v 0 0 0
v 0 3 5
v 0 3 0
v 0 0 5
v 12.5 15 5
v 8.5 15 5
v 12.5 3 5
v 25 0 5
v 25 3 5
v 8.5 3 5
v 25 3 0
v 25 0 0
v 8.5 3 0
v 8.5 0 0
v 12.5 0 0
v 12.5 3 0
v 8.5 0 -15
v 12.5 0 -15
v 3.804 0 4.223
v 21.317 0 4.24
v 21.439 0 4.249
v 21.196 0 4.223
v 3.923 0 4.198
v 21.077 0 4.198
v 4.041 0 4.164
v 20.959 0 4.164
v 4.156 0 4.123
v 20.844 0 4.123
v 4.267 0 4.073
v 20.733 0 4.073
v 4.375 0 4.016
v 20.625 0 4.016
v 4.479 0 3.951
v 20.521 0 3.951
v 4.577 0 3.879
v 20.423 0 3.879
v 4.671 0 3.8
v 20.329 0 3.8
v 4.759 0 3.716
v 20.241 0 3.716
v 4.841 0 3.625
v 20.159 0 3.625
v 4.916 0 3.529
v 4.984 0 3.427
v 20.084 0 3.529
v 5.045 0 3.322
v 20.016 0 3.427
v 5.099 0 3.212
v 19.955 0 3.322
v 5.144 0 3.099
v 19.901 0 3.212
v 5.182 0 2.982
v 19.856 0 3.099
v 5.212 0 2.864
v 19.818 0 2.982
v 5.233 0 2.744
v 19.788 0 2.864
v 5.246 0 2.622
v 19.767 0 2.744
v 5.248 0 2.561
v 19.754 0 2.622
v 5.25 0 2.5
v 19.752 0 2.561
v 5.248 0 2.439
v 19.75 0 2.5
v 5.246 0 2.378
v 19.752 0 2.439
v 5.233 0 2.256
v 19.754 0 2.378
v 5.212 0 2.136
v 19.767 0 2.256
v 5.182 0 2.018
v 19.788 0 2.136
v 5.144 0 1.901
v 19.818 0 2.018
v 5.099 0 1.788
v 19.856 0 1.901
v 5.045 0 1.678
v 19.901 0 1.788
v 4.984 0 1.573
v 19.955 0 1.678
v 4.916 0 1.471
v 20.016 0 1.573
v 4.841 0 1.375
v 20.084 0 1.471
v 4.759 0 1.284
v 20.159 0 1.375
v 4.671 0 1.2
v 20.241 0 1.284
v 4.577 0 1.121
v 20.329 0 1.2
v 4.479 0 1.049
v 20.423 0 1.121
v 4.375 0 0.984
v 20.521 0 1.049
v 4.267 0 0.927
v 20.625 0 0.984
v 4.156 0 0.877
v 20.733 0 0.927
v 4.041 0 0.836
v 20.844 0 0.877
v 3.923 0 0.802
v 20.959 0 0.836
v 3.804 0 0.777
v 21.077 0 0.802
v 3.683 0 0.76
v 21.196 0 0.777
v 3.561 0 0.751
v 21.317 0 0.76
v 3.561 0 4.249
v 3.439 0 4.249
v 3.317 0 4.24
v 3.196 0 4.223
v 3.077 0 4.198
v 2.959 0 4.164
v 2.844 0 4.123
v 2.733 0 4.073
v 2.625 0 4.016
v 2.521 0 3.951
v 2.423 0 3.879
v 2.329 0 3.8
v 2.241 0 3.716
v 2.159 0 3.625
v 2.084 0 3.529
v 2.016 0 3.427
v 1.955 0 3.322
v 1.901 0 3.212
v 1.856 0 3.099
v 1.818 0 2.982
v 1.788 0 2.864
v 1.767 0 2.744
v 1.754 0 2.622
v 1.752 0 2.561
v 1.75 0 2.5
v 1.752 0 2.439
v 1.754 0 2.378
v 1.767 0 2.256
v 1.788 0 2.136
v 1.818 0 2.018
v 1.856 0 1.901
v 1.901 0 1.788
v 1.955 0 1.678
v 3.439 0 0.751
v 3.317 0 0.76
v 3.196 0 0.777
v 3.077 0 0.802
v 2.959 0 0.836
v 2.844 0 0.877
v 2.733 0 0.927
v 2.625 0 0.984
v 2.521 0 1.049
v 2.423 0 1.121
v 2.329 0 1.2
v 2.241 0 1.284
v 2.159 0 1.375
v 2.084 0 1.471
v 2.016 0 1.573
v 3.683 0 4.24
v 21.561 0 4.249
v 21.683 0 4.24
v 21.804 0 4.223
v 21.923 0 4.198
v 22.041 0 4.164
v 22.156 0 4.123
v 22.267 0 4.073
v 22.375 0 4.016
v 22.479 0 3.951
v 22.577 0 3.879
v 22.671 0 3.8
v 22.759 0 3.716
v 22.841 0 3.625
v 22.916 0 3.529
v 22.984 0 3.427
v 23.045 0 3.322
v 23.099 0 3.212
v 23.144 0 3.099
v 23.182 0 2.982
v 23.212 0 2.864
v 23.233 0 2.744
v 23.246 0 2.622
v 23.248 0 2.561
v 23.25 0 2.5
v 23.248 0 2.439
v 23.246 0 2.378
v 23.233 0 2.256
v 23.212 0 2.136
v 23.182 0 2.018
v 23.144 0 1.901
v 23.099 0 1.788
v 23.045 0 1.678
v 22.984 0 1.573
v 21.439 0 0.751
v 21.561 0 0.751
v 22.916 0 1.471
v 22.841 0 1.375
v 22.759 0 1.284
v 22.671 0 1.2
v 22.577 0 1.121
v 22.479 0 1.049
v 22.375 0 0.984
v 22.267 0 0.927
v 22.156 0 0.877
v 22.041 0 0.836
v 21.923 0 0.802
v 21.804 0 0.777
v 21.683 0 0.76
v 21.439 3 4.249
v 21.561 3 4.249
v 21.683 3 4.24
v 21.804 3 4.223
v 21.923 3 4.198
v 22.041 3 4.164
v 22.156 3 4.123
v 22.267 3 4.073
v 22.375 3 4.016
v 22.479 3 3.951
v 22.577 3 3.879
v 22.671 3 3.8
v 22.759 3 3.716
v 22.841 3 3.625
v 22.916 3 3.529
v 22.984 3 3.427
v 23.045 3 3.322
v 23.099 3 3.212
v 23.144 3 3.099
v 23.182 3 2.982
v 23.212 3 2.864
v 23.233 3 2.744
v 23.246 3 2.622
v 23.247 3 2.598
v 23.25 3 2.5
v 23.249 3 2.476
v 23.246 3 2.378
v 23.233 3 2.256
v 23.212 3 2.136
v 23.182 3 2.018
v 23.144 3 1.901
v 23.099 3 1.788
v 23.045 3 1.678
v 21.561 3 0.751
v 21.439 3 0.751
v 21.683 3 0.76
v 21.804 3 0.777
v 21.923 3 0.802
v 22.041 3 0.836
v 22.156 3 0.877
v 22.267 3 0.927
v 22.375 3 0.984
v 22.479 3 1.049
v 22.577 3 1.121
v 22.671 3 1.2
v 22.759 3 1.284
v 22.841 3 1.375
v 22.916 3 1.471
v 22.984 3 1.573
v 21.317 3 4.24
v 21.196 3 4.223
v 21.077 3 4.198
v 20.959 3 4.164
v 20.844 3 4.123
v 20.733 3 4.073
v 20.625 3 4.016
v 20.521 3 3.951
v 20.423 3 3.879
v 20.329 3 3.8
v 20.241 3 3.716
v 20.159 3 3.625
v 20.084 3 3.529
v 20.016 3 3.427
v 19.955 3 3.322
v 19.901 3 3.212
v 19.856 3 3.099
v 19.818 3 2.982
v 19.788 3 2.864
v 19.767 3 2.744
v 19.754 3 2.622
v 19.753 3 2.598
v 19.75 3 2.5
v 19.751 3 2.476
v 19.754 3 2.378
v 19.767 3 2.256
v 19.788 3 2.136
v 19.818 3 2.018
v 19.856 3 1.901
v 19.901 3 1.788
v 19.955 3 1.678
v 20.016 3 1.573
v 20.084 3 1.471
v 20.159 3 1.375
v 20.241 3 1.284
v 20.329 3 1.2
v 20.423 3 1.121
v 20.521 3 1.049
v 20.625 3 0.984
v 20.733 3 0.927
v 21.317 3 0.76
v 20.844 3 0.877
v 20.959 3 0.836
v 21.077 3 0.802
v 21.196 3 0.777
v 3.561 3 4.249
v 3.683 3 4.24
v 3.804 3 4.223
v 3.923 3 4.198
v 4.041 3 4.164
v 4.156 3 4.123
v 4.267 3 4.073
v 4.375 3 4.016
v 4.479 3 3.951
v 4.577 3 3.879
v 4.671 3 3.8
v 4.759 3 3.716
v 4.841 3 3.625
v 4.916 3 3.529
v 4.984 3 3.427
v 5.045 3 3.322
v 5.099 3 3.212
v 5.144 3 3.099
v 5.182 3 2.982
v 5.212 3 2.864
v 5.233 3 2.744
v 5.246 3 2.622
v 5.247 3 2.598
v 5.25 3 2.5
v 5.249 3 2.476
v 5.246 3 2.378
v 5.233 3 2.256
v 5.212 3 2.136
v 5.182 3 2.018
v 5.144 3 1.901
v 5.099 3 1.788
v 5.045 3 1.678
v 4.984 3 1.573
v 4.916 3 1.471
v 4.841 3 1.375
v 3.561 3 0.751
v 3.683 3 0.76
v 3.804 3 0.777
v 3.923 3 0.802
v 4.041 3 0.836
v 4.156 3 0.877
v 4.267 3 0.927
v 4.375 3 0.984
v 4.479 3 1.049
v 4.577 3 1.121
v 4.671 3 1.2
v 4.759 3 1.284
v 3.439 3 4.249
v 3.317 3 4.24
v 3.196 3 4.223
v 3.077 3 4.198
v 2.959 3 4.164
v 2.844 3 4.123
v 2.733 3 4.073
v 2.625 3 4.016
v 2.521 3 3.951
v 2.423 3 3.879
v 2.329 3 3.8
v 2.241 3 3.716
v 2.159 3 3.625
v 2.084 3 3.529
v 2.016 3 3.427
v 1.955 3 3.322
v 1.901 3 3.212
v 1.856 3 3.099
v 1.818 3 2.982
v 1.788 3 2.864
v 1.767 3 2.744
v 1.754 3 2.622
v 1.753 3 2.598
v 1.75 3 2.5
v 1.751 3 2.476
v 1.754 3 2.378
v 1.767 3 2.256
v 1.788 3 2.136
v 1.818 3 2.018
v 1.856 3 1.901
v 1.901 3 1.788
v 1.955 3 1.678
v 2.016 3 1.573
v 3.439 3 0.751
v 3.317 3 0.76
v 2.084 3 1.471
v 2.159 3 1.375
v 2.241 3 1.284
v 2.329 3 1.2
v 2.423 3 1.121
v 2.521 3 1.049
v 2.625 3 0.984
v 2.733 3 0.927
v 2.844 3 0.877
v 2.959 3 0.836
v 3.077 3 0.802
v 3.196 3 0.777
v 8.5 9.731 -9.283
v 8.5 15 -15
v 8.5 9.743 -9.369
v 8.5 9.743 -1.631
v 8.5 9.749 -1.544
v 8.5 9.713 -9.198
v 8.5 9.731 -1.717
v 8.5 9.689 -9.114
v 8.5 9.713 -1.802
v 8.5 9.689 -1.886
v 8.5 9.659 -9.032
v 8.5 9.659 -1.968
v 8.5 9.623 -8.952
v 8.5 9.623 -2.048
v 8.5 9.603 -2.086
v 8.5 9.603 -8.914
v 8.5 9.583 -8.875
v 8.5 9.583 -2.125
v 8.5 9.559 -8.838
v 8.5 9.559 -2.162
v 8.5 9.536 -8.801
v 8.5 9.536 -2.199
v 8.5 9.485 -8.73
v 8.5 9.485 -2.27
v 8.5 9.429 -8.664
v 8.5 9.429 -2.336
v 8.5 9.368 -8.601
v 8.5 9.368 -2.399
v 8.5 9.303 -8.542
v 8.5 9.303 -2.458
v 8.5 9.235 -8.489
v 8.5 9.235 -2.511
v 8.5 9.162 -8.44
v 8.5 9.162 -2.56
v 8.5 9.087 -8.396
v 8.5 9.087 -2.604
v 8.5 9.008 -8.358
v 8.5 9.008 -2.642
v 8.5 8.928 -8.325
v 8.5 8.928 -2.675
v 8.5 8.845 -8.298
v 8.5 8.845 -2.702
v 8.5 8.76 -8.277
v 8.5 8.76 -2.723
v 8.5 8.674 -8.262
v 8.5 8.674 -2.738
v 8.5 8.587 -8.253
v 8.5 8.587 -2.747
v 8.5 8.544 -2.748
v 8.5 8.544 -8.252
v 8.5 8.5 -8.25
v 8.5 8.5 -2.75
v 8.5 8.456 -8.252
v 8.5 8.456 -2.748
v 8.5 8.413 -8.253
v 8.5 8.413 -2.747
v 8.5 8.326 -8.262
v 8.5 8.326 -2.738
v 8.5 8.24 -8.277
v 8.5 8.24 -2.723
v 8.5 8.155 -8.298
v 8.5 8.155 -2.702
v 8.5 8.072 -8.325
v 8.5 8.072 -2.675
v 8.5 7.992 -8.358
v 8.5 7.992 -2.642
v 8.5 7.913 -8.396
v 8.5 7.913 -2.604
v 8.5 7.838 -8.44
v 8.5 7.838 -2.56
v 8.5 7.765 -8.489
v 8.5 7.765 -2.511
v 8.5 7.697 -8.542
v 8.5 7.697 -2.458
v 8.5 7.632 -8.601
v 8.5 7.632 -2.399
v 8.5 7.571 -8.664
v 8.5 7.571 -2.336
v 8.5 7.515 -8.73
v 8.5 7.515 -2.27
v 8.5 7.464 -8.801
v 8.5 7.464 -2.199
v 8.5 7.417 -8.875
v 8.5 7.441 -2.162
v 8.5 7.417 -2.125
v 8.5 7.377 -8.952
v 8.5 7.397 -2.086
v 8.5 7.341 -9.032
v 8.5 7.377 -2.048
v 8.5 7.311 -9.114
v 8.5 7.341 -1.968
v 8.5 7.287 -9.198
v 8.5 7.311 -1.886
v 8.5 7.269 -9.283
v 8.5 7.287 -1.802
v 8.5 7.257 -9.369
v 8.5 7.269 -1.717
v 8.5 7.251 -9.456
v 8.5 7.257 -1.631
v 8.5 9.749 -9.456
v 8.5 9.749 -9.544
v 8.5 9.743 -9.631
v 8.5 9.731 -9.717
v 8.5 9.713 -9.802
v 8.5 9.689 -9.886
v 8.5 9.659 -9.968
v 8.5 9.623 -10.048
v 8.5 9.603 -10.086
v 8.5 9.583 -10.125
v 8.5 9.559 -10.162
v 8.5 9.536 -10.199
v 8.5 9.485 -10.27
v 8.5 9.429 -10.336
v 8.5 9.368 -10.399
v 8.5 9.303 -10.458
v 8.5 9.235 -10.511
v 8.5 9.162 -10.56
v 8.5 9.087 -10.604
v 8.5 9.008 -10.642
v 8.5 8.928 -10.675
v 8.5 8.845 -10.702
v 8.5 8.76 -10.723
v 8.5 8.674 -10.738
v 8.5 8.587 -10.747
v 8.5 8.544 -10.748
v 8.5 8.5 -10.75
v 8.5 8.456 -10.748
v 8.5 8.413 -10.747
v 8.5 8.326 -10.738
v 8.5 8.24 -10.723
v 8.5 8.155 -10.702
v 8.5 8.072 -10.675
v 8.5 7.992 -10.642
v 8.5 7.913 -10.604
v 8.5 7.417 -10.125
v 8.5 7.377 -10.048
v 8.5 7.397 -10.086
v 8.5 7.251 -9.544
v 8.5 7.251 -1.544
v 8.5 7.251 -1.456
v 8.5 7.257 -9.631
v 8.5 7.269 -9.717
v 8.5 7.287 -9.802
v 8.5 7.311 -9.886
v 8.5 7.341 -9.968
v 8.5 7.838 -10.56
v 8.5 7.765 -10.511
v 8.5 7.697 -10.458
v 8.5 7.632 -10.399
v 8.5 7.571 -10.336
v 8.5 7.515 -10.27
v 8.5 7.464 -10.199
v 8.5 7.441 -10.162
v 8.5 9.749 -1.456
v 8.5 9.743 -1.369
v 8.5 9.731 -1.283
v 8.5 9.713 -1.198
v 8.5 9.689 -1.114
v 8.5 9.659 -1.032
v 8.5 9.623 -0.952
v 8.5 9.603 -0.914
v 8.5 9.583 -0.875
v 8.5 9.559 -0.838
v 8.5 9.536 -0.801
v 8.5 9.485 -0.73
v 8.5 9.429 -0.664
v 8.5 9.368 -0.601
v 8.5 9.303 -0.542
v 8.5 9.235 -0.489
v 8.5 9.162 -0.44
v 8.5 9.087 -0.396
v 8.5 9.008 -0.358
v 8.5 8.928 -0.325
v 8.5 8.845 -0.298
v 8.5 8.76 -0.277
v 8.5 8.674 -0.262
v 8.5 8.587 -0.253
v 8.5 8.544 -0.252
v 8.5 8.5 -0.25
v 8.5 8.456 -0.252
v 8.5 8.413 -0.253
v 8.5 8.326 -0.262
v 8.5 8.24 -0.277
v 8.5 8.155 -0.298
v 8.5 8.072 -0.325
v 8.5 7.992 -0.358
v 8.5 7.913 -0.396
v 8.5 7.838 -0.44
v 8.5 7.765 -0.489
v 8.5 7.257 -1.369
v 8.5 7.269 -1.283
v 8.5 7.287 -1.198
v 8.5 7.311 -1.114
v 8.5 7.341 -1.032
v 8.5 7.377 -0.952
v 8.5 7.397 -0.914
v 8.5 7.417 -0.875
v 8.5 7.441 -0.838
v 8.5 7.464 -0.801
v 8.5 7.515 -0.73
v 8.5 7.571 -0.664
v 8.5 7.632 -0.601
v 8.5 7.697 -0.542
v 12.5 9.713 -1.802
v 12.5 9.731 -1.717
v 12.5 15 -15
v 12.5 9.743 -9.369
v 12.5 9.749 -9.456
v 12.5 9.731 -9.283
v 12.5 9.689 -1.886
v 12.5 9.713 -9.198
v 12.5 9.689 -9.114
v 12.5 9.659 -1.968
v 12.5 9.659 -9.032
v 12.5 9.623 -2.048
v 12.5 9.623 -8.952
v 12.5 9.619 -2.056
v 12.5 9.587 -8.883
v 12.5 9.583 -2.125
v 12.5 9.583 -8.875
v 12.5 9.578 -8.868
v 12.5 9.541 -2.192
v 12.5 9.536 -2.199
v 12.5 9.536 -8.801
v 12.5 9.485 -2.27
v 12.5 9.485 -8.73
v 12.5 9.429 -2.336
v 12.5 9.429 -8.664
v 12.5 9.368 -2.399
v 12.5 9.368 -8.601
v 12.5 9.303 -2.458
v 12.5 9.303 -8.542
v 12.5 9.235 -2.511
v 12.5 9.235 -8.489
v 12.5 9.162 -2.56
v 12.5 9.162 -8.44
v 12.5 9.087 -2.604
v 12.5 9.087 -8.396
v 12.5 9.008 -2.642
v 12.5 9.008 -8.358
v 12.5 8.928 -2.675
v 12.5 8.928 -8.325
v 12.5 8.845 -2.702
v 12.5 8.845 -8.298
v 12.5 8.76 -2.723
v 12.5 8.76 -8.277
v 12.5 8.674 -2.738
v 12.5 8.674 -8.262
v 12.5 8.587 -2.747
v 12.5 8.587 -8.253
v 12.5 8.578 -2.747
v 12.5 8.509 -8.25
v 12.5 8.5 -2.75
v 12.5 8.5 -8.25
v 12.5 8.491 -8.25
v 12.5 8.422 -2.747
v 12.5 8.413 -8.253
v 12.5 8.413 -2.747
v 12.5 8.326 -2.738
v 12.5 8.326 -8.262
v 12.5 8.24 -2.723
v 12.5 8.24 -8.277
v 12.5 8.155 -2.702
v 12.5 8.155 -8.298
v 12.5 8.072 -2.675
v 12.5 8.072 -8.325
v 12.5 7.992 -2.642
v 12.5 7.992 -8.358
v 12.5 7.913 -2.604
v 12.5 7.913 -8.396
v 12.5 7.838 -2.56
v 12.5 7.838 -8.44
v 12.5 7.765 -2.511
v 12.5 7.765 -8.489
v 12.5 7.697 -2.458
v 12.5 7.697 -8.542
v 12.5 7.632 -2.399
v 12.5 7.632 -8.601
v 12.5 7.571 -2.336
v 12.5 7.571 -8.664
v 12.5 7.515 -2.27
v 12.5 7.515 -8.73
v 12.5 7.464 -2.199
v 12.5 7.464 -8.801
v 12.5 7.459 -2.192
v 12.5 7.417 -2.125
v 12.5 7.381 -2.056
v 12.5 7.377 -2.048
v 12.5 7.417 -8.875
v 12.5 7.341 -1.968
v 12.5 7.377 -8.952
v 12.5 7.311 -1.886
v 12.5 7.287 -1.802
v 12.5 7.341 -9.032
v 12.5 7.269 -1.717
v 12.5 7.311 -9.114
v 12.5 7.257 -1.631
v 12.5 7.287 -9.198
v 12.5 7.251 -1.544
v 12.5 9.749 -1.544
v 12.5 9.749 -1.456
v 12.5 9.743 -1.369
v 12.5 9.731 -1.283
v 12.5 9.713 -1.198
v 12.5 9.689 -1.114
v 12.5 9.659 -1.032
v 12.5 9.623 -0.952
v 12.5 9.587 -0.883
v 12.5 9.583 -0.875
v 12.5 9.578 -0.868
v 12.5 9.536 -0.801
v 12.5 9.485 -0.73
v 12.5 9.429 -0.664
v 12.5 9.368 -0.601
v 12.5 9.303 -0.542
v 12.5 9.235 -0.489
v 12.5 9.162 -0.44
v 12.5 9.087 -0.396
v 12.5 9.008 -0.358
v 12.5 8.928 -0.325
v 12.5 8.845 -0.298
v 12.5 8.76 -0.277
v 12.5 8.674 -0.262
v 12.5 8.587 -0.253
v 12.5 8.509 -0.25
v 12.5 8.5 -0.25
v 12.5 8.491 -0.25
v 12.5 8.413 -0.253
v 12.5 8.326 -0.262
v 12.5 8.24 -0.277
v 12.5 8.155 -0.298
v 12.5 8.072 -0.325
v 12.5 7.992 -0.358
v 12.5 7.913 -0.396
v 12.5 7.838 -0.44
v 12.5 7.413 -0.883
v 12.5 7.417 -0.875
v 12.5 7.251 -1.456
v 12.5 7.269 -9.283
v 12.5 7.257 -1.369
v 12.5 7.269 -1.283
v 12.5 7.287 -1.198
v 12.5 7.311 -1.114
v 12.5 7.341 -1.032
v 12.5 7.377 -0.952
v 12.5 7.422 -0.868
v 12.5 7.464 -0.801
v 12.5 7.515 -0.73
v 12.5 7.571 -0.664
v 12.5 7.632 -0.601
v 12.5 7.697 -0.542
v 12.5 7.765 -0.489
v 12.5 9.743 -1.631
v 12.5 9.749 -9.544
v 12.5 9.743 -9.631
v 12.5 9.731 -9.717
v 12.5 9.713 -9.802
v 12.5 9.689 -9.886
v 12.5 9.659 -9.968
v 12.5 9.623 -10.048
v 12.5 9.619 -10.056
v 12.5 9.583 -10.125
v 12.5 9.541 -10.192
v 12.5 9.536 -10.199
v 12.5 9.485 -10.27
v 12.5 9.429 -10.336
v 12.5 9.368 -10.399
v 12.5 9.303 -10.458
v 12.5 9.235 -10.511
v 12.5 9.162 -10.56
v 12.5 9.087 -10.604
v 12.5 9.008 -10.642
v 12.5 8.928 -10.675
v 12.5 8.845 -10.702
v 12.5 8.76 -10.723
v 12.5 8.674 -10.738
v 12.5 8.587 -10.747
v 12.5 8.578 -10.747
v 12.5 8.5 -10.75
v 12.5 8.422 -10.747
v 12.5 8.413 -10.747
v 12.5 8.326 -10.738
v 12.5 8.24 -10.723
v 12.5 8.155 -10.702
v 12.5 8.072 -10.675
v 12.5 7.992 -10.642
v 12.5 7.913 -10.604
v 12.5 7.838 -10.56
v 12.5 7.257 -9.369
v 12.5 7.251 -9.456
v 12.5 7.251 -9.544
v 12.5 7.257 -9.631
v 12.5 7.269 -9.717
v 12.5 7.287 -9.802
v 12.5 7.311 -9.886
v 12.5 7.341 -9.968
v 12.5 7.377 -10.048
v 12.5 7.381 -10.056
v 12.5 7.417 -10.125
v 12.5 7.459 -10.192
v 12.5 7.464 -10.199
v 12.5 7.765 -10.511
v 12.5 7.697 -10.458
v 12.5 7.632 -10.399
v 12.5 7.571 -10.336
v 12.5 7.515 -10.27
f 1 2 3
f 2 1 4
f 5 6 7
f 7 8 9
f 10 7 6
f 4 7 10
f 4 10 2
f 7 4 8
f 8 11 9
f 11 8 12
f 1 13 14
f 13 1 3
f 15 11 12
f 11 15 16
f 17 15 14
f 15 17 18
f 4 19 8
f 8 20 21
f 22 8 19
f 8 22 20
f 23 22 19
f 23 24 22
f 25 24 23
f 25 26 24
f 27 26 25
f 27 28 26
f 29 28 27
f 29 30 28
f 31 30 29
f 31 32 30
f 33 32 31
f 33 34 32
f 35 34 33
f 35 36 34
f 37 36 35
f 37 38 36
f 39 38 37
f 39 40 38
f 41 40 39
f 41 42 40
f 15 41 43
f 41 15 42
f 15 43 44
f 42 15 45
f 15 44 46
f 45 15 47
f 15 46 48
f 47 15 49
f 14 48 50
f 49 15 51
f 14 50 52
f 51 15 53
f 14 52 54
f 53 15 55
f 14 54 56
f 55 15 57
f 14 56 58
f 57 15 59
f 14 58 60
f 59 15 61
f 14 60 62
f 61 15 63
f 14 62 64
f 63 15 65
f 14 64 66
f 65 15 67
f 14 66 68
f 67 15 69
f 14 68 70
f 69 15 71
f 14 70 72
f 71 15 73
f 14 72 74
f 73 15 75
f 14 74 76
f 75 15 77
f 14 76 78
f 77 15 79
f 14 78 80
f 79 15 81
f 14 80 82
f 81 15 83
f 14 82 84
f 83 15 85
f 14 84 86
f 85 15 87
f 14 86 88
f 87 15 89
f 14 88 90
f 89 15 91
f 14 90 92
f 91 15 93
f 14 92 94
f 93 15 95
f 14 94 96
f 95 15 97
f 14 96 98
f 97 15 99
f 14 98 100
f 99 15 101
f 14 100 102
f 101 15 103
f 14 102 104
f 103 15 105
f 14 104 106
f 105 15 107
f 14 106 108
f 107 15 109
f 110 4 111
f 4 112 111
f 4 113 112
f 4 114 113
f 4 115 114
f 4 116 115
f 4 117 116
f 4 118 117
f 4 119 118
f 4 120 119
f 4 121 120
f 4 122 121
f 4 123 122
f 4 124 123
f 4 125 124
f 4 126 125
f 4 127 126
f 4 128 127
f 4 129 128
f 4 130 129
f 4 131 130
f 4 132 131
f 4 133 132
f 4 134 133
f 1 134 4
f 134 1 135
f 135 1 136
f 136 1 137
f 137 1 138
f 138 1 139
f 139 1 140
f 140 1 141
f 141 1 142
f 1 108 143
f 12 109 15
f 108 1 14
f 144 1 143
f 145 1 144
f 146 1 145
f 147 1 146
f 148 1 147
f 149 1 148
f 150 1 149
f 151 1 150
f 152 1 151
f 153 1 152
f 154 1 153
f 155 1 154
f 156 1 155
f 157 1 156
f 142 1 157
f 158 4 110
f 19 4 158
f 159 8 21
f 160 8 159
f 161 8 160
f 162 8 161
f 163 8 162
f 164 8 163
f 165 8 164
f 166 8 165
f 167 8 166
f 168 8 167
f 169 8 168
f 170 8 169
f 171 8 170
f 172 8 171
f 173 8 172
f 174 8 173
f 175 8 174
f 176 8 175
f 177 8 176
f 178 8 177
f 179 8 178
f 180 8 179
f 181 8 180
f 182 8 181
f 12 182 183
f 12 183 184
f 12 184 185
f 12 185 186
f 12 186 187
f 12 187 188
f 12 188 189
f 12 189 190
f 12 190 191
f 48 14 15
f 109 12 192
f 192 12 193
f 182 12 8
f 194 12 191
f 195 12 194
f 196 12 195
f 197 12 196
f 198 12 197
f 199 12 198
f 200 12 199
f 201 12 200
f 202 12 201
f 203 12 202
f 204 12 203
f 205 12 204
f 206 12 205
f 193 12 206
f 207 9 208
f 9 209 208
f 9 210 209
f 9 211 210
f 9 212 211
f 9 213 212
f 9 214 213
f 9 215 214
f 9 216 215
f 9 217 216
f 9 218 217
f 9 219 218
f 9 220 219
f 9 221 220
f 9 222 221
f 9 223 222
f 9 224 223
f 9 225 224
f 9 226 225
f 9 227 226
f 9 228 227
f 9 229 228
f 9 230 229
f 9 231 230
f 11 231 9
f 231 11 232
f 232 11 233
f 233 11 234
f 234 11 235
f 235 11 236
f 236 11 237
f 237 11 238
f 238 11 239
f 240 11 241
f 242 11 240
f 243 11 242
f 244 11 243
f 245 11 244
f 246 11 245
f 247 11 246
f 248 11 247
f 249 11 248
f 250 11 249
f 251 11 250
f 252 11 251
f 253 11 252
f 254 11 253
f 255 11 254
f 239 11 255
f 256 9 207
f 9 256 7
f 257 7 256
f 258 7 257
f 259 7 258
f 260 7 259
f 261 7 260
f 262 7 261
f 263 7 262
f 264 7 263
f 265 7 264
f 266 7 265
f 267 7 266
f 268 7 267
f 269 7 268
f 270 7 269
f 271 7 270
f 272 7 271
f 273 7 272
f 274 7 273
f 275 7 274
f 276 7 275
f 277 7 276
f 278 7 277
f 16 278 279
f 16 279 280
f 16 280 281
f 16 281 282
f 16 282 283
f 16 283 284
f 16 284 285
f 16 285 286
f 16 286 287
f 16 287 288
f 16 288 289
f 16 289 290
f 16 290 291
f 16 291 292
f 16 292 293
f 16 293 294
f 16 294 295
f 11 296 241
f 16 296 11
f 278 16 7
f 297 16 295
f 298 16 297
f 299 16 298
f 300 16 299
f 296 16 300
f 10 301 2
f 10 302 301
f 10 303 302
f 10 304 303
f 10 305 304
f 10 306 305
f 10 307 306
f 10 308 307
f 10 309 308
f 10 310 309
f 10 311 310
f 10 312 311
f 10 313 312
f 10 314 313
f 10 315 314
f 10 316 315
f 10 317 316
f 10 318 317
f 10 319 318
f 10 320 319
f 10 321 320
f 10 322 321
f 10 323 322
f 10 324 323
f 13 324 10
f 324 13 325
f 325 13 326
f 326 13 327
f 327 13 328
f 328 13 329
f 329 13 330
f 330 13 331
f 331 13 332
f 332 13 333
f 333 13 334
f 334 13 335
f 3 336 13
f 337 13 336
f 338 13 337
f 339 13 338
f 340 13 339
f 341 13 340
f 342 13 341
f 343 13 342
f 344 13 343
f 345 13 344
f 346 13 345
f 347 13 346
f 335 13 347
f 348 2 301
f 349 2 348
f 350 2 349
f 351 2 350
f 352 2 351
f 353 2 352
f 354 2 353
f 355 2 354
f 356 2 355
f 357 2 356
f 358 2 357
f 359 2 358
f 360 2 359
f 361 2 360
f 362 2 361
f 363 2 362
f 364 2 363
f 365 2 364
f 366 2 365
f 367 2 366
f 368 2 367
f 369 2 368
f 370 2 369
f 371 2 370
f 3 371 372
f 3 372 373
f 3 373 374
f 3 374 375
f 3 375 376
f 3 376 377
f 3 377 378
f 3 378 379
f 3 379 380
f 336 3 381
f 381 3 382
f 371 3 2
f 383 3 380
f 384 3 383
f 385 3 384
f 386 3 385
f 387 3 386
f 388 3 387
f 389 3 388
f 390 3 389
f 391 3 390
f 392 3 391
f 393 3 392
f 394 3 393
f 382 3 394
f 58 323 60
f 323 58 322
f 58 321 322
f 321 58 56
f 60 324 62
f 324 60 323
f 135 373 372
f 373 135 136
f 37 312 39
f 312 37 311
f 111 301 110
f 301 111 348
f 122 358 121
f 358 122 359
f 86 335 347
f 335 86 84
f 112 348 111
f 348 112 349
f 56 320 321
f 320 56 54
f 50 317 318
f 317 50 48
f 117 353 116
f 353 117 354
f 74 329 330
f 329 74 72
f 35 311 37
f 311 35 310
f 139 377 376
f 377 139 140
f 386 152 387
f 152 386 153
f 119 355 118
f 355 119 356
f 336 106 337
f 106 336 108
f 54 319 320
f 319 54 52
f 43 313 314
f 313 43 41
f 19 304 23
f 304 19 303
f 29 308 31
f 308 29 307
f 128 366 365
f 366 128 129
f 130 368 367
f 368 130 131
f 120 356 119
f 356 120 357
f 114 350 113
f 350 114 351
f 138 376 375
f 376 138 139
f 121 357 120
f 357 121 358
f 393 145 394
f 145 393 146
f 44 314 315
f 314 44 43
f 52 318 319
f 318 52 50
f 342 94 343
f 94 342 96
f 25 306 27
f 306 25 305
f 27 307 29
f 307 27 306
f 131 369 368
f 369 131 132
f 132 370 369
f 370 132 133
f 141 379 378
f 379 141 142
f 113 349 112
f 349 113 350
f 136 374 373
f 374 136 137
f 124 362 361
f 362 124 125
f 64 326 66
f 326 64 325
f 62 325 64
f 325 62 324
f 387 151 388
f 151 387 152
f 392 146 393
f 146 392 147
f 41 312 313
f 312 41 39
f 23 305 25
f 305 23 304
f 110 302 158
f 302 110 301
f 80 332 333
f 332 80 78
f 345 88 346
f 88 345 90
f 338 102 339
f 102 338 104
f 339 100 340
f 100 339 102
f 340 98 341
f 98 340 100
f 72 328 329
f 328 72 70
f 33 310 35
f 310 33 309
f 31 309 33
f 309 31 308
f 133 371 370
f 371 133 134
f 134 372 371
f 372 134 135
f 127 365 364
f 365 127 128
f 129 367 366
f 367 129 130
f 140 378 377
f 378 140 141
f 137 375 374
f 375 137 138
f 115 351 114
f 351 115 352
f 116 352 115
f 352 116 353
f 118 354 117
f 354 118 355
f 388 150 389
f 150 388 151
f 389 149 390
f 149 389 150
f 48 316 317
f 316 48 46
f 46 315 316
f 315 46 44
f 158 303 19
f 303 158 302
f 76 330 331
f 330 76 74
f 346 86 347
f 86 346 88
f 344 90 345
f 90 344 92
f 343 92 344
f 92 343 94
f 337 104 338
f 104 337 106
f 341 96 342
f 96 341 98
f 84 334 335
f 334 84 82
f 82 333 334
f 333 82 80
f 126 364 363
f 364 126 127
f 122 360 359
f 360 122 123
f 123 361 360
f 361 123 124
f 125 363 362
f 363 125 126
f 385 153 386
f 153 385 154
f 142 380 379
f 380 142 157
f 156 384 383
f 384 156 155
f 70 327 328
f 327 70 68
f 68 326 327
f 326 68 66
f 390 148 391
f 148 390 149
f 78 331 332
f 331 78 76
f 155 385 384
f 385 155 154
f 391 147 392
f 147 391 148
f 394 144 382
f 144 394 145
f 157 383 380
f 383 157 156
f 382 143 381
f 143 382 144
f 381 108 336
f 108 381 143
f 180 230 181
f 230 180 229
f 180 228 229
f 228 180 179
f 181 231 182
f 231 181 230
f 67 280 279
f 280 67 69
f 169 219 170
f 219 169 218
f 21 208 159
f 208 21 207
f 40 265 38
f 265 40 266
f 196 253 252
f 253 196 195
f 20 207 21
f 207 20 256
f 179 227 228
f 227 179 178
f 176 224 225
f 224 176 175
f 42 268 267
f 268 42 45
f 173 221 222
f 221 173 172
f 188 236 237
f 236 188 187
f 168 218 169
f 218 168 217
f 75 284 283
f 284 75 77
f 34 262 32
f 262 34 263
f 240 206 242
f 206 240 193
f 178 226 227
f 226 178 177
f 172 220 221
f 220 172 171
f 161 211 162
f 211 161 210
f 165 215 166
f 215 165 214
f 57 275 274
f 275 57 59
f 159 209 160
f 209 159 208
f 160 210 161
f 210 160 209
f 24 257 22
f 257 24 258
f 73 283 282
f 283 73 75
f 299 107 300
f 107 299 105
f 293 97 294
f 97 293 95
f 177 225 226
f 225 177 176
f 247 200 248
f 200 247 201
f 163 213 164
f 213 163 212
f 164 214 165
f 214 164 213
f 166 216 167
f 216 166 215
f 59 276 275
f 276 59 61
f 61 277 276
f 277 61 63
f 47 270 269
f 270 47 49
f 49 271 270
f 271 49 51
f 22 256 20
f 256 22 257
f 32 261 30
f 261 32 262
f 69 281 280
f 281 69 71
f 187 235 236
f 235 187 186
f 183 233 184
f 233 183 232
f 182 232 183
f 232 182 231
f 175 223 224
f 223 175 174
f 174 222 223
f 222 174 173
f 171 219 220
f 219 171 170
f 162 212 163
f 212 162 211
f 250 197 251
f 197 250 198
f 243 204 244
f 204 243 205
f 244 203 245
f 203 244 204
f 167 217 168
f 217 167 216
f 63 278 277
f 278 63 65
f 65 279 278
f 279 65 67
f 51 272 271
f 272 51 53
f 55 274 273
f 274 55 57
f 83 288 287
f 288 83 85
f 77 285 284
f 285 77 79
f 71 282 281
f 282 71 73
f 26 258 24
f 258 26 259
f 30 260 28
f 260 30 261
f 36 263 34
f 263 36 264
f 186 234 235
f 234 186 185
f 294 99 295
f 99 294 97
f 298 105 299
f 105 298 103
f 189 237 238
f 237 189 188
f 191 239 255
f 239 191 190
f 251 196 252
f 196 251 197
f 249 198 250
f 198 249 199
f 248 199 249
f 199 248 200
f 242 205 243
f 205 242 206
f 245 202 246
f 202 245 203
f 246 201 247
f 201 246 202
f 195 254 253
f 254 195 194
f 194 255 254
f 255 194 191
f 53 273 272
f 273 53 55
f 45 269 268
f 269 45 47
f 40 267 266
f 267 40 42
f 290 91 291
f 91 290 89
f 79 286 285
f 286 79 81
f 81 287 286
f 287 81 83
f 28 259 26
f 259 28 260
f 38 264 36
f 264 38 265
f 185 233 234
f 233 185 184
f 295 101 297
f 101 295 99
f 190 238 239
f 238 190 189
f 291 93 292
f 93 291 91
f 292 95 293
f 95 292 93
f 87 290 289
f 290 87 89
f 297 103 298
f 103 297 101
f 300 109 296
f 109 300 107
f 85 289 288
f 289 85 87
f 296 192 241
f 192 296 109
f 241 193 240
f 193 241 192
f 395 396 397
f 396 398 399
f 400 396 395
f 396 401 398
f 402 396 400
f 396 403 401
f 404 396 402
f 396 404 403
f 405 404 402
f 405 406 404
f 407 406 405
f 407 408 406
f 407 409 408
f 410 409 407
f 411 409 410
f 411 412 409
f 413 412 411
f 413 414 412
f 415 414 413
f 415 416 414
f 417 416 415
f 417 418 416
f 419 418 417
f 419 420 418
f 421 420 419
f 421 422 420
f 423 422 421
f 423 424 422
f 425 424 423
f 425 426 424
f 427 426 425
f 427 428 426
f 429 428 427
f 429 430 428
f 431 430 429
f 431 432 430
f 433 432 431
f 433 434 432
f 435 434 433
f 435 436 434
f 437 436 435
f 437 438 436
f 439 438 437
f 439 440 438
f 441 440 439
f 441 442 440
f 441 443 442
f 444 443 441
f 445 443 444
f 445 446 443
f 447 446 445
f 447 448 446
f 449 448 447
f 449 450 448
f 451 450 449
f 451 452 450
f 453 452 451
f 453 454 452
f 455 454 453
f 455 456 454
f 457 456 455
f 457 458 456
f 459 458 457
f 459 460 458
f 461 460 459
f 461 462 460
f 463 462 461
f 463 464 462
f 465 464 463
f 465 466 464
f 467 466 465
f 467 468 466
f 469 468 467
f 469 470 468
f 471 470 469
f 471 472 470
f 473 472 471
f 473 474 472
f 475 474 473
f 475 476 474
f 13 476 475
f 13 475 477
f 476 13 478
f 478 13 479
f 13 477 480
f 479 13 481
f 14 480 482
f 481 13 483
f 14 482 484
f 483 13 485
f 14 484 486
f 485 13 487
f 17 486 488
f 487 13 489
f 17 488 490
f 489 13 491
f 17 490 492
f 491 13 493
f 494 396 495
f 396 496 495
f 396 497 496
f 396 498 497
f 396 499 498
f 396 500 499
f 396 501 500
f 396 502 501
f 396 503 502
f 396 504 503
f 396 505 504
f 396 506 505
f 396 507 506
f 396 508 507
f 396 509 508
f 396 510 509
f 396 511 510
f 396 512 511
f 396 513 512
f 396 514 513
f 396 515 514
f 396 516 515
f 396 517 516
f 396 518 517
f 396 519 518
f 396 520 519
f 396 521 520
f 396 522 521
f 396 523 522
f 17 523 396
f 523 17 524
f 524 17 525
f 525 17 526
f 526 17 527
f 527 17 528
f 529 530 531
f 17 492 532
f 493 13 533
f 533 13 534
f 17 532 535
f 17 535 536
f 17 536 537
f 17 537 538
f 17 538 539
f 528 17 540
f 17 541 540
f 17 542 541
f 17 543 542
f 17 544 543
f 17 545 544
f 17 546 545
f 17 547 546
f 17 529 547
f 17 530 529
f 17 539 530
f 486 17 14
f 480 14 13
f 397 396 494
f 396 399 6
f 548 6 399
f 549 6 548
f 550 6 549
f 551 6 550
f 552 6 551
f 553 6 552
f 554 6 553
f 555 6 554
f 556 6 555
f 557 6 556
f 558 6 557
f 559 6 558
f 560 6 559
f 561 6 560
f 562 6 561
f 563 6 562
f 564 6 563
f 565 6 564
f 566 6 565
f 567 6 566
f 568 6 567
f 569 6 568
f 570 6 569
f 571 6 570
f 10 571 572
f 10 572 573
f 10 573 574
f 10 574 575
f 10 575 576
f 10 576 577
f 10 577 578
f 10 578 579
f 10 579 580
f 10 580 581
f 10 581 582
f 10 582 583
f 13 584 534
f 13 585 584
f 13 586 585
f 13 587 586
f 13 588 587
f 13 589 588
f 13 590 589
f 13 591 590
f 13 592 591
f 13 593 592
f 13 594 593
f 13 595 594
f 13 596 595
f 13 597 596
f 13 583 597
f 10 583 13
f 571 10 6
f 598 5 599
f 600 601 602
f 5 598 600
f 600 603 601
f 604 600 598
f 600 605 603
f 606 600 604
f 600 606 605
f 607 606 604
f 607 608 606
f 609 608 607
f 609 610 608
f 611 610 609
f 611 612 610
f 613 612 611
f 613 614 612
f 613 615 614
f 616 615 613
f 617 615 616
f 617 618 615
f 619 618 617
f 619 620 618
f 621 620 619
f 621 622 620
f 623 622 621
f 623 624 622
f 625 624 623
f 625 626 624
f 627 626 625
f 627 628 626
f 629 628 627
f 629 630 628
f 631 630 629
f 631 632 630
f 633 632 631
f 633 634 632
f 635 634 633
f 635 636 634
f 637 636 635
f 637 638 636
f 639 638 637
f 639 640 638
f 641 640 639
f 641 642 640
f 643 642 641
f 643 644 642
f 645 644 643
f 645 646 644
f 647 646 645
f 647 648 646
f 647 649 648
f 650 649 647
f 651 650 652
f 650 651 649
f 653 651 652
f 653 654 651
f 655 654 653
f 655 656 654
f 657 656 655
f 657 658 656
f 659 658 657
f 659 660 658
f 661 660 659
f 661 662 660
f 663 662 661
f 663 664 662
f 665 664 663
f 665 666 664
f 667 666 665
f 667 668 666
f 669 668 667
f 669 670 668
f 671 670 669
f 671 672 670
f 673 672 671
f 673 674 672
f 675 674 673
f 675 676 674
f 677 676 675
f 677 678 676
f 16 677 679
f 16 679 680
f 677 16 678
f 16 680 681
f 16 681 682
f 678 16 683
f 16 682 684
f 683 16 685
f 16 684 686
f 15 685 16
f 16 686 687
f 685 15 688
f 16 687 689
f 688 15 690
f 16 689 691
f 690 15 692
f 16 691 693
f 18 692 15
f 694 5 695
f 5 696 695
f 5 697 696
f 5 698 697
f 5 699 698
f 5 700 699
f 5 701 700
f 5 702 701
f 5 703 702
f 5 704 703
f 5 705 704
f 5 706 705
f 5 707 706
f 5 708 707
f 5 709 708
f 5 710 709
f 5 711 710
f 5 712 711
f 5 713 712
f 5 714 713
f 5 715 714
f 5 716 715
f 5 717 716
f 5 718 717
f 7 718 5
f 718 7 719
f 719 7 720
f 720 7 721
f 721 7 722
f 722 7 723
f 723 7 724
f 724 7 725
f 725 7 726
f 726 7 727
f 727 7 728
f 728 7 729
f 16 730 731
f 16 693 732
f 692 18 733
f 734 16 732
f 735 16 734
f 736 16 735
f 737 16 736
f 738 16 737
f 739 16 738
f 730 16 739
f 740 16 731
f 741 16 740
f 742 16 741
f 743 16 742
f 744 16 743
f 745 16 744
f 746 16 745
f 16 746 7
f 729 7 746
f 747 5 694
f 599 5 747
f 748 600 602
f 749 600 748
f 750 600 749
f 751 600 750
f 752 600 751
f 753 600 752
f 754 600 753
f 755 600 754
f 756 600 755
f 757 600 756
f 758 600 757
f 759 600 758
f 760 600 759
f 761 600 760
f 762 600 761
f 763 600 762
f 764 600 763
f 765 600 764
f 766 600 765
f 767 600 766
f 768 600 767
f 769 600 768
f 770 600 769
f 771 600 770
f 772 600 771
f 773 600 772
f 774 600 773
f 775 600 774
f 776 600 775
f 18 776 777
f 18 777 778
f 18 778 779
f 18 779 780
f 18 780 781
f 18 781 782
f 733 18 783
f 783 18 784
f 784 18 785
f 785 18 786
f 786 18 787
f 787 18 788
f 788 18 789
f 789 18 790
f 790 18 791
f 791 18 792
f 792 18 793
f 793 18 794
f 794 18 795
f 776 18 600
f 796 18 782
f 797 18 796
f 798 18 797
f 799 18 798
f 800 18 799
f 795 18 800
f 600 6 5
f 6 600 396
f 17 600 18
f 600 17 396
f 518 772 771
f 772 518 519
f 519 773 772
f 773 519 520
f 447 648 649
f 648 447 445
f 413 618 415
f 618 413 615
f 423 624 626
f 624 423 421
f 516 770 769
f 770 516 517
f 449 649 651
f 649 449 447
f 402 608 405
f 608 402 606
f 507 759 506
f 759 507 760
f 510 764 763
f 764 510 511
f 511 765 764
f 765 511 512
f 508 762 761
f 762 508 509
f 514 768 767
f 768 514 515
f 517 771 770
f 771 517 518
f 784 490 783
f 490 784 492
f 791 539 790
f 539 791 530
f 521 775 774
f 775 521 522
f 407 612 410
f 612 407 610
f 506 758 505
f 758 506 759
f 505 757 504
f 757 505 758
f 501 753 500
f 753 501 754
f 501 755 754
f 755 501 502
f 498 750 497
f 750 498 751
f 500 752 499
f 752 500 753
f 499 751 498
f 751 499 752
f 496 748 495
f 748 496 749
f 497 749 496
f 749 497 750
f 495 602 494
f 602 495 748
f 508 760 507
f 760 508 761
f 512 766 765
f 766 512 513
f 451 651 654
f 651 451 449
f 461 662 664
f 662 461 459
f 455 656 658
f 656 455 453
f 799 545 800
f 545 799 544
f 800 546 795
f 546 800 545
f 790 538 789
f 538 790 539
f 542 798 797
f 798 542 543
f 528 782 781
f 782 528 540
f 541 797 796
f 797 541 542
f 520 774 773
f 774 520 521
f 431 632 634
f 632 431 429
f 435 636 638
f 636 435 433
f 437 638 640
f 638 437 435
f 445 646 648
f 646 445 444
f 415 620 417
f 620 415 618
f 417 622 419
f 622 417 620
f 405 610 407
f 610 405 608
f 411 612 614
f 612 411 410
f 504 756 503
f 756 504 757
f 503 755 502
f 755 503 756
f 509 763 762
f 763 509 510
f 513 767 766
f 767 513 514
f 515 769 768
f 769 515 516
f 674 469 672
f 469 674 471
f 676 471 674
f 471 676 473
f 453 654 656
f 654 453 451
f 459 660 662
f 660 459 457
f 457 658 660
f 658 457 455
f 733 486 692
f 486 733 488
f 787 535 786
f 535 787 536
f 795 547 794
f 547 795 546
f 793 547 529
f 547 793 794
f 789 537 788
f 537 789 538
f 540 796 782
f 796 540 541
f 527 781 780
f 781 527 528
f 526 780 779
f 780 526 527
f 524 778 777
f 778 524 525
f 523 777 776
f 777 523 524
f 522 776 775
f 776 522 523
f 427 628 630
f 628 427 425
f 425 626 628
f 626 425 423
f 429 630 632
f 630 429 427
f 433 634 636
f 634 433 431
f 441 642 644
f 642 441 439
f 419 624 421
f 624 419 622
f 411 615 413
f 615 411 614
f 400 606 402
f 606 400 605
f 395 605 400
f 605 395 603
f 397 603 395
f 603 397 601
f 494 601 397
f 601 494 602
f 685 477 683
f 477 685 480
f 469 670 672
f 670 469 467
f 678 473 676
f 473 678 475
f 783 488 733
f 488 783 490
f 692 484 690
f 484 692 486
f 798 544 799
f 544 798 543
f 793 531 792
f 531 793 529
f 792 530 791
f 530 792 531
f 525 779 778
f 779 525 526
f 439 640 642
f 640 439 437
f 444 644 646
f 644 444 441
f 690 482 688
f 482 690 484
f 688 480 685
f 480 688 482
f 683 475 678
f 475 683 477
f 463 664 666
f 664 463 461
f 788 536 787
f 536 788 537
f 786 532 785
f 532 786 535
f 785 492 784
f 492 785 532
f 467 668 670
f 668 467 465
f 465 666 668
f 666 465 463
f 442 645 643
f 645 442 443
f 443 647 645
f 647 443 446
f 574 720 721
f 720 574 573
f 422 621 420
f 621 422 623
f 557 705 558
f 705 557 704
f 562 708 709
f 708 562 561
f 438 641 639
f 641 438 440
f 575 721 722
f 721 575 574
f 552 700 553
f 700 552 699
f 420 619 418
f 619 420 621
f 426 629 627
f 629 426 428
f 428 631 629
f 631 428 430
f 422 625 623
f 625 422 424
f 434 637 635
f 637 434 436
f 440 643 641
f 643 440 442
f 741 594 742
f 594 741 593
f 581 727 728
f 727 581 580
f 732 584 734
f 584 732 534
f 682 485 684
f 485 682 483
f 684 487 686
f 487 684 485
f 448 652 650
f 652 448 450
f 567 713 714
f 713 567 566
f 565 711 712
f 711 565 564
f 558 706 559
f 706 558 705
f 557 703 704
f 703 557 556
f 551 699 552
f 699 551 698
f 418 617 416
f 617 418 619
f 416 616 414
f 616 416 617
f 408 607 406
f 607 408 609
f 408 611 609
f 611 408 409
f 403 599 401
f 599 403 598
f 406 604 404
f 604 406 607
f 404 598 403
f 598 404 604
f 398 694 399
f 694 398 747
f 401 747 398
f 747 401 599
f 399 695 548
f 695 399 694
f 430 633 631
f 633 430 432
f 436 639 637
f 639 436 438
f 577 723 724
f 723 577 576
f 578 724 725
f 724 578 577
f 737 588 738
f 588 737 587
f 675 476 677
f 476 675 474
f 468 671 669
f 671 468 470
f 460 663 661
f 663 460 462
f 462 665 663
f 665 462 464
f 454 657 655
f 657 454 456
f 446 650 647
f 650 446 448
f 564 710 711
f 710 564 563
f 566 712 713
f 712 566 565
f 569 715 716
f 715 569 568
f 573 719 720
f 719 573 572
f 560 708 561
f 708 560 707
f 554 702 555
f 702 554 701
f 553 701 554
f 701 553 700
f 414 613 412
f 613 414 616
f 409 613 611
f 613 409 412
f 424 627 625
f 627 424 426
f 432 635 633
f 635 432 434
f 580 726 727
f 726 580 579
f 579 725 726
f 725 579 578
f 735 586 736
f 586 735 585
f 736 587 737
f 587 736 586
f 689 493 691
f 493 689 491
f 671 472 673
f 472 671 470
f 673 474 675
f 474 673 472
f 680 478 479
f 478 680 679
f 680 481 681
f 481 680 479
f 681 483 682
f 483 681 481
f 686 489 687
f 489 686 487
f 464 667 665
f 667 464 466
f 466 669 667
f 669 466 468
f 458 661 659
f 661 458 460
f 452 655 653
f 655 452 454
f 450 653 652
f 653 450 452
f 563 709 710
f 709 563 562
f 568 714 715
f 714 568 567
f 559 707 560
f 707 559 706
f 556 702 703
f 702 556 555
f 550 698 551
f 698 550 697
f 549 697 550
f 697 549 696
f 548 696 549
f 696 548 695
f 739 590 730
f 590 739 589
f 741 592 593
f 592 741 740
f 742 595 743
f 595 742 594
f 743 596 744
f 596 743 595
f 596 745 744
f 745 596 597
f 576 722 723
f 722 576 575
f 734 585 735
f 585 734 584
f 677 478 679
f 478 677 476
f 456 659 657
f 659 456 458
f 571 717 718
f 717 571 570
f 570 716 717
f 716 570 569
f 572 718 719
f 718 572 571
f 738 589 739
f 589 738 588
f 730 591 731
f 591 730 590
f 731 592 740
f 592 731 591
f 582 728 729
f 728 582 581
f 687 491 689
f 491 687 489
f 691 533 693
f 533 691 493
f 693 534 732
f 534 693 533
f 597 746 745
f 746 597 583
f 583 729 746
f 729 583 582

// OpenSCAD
// Y endstop mount for K40 laser cutter/engraver

union(){

    difference(){
        cube([25,3,5]);
        
        // mounting holes
        holeSep = 18;
        #rotate([90]) translate([3.5,2.5,0]) cylinder(d=3.5,h=10,$fn=90,center=true);
        #rotate([90]) translate([3.5+holeSep,2.5,0]) cylinder(d=3.5,h=10,$fn=90,center=true);
    }
    
    translate([8.5,0,-15]) difference(){
        cube([4,15,20]);
        
         // endstop mounting holes
        holeSep = 8;
        #rotate([0,90,0]) translate([-5.5,8.5,0]) cylinder(d=2.5,h=10,$fn=90,center=true);
        #rotate([0,90,0]) translate([-5.5-holeSep,8.5,0]) cylinder(d=2.5,h=10,$fn=90,center=true);
    }
}
